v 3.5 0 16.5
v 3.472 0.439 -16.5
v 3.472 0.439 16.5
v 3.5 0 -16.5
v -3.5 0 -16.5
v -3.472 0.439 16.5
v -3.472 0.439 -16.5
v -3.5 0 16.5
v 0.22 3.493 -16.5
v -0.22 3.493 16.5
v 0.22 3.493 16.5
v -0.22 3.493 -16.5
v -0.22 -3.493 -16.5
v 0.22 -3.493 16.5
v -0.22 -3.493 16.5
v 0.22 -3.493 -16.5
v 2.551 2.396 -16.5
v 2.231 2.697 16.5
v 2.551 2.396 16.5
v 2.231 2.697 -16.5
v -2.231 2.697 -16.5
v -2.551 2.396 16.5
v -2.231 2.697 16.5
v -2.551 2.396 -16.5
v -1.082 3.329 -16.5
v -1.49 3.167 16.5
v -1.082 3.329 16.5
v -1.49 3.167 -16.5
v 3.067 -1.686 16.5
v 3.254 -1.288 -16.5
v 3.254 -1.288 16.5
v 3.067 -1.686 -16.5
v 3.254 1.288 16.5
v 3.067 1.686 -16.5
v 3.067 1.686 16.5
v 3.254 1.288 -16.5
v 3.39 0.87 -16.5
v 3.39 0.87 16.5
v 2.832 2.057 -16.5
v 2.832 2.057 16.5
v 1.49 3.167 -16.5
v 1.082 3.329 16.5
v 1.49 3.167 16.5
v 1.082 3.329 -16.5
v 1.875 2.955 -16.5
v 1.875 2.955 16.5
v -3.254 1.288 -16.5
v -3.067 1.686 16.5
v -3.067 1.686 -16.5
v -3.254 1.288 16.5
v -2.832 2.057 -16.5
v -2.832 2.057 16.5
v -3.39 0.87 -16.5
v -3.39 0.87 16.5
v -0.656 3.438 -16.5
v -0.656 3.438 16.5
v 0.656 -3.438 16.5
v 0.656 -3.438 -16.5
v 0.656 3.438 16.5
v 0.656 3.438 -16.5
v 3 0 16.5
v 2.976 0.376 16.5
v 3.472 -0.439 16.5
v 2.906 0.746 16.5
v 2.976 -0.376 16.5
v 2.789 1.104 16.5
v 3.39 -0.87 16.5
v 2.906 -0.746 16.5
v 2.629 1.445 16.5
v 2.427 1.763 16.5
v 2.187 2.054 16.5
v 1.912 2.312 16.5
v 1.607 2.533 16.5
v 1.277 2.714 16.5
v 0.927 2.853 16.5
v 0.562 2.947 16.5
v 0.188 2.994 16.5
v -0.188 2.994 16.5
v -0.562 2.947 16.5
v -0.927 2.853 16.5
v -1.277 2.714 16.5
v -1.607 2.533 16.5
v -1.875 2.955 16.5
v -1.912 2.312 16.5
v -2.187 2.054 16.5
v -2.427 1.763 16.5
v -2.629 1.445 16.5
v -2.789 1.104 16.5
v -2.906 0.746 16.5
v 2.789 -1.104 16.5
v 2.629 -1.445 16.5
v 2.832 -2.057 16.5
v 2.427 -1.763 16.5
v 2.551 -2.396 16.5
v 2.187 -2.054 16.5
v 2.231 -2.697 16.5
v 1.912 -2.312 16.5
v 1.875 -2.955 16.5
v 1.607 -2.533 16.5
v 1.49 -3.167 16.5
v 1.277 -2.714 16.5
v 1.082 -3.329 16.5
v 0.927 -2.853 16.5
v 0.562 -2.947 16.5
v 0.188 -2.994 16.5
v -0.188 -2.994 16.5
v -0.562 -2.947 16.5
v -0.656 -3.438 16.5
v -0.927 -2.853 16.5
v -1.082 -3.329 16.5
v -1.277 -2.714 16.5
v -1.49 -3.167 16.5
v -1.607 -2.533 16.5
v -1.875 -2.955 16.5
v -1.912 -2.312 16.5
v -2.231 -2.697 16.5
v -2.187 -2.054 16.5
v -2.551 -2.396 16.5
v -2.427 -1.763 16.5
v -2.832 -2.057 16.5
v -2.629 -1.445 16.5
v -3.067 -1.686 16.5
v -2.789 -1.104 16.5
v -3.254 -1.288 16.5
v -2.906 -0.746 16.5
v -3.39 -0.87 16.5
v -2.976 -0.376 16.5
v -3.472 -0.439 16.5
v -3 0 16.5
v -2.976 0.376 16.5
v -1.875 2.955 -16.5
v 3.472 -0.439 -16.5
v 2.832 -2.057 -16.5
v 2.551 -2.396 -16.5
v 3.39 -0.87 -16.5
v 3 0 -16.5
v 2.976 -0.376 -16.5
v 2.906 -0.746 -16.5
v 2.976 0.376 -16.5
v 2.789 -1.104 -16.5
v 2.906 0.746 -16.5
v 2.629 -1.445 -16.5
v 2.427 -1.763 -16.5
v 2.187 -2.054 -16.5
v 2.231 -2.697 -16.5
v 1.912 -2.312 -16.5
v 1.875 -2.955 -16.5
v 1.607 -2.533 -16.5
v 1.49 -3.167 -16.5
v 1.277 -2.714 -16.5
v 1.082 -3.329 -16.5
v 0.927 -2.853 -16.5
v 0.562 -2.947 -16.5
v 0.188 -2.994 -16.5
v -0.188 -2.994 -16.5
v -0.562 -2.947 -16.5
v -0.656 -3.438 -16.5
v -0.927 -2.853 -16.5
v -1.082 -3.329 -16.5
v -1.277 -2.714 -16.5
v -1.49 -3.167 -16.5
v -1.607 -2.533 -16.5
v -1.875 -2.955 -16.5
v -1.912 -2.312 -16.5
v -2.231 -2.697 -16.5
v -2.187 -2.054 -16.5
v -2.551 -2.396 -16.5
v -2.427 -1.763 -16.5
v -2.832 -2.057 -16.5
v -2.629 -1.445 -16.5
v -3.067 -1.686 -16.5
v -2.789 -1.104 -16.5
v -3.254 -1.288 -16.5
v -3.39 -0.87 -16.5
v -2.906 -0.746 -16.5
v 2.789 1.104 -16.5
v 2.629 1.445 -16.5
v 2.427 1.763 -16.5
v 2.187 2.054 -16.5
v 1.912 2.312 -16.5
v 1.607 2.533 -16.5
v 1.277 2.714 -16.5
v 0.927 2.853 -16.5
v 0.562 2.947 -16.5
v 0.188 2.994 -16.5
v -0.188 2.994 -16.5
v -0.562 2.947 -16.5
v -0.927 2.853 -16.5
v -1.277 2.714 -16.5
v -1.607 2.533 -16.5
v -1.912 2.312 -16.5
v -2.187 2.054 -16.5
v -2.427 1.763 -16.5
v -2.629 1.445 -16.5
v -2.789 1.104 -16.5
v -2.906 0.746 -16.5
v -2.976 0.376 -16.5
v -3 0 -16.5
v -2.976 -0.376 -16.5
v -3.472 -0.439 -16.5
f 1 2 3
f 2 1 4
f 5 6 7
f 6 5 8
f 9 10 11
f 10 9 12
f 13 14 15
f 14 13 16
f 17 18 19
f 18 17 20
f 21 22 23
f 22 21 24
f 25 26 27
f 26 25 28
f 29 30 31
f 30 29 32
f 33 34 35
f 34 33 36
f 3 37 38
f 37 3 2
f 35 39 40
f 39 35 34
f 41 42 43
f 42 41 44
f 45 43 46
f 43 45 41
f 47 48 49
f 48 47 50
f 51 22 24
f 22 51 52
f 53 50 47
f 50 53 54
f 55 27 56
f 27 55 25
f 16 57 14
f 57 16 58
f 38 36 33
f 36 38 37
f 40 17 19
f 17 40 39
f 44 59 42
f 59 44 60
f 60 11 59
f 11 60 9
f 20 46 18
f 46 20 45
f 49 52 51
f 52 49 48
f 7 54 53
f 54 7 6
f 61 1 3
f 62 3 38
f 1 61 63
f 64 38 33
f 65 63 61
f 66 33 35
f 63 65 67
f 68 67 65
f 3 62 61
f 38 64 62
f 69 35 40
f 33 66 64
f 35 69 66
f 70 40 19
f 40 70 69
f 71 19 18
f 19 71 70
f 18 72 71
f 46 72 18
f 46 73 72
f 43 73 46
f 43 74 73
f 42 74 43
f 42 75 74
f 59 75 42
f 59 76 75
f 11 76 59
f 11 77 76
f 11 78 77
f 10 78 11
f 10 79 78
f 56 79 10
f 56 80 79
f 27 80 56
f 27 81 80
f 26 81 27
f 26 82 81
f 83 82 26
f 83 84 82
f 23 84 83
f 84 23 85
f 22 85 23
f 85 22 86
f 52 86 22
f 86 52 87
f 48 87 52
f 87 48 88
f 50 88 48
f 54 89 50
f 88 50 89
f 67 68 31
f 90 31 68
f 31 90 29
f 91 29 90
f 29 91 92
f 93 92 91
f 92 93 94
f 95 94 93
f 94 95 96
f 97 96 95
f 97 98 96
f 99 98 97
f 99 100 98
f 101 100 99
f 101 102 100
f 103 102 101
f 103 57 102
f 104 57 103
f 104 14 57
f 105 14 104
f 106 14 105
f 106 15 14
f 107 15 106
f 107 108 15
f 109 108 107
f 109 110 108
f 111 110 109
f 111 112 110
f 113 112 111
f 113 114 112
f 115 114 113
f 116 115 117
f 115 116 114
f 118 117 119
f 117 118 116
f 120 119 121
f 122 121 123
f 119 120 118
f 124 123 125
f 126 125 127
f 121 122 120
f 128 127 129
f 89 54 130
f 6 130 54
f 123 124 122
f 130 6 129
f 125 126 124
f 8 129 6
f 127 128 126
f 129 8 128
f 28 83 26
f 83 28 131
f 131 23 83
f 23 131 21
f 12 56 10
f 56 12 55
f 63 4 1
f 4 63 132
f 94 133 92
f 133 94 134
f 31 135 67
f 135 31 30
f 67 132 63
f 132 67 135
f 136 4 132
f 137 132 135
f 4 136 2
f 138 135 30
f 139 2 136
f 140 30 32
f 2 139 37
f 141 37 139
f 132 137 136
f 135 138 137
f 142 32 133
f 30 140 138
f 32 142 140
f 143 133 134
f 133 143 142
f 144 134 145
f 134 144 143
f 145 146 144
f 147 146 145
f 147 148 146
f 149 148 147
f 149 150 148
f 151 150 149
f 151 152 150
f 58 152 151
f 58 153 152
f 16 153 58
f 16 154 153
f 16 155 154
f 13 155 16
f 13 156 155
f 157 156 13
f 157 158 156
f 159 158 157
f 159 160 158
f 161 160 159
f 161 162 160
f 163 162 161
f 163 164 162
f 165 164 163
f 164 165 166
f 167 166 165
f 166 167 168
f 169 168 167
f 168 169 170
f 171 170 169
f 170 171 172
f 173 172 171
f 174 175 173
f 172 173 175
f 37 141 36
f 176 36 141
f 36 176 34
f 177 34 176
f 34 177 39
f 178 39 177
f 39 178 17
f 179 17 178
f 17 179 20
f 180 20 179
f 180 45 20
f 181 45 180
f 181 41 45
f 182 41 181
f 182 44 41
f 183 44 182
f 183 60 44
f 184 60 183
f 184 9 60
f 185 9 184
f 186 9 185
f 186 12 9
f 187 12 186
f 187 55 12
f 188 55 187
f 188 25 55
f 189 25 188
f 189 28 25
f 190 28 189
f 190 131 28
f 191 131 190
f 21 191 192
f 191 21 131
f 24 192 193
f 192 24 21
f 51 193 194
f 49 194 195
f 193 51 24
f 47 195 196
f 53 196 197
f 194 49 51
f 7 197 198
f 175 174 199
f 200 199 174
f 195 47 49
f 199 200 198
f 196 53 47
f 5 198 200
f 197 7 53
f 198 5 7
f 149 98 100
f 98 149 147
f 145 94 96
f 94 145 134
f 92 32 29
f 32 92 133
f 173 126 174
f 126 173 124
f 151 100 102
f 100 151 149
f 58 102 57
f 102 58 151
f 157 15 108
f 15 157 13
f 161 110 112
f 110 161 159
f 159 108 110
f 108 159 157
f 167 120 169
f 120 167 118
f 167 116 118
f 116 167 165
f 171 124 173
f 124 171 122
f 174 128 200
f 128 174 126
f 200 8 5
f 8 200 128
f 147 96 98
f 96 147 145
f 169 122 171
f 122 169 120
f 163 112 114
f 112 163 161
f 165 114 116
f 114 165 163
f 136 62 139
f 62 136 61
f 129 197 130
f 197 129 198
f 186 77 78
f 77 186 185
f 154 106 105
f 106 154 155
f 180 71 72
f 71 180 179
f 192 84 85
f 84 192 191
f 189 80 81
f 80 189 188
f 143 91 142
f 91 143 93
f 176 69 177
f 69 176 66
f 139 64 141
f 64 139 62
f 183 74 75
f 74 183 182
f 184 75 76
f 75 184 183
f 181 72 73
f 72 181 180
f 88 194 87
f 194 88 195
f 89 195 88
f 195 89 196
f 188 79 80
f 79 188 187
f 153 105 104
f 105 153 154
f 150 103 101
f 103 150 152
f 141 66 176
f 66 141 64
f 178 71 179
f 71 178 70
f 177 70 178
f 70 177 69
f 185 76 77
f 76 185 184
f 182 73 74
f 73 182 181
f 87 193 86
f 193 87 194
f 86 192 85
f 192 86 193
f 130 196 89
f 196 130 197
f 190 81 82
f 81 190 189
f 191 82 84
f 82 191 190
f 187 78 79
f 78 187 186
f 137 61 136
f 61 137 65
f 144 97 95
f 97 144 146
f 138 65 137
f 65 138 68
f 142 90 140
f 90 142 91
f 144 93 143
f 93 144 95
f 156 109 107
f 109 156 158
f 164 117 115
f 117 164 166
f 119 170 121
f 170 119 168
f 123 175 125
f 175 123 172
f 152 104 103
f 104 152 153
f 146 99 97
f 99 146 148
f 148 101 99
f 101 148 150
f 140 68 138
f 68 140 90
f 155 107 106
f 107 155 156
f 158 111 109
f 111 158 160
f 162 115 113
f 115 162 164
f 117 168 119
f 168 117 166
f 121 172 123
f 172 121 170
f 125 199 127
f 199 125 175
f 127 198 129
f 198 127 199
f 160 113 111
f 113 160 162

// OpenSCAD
$fn = 50;


difference() {
	union() {
		translate(v = [0, 0, -16.5000000000]) {
			cylinder(h = 33, r = 3.5000000000);
		}
	}
	union() {
		translate(v = [0, 0, -100.0000000000]) {
			cylinder(h = 200, r = 3.0000000000);
		}
	}
}
